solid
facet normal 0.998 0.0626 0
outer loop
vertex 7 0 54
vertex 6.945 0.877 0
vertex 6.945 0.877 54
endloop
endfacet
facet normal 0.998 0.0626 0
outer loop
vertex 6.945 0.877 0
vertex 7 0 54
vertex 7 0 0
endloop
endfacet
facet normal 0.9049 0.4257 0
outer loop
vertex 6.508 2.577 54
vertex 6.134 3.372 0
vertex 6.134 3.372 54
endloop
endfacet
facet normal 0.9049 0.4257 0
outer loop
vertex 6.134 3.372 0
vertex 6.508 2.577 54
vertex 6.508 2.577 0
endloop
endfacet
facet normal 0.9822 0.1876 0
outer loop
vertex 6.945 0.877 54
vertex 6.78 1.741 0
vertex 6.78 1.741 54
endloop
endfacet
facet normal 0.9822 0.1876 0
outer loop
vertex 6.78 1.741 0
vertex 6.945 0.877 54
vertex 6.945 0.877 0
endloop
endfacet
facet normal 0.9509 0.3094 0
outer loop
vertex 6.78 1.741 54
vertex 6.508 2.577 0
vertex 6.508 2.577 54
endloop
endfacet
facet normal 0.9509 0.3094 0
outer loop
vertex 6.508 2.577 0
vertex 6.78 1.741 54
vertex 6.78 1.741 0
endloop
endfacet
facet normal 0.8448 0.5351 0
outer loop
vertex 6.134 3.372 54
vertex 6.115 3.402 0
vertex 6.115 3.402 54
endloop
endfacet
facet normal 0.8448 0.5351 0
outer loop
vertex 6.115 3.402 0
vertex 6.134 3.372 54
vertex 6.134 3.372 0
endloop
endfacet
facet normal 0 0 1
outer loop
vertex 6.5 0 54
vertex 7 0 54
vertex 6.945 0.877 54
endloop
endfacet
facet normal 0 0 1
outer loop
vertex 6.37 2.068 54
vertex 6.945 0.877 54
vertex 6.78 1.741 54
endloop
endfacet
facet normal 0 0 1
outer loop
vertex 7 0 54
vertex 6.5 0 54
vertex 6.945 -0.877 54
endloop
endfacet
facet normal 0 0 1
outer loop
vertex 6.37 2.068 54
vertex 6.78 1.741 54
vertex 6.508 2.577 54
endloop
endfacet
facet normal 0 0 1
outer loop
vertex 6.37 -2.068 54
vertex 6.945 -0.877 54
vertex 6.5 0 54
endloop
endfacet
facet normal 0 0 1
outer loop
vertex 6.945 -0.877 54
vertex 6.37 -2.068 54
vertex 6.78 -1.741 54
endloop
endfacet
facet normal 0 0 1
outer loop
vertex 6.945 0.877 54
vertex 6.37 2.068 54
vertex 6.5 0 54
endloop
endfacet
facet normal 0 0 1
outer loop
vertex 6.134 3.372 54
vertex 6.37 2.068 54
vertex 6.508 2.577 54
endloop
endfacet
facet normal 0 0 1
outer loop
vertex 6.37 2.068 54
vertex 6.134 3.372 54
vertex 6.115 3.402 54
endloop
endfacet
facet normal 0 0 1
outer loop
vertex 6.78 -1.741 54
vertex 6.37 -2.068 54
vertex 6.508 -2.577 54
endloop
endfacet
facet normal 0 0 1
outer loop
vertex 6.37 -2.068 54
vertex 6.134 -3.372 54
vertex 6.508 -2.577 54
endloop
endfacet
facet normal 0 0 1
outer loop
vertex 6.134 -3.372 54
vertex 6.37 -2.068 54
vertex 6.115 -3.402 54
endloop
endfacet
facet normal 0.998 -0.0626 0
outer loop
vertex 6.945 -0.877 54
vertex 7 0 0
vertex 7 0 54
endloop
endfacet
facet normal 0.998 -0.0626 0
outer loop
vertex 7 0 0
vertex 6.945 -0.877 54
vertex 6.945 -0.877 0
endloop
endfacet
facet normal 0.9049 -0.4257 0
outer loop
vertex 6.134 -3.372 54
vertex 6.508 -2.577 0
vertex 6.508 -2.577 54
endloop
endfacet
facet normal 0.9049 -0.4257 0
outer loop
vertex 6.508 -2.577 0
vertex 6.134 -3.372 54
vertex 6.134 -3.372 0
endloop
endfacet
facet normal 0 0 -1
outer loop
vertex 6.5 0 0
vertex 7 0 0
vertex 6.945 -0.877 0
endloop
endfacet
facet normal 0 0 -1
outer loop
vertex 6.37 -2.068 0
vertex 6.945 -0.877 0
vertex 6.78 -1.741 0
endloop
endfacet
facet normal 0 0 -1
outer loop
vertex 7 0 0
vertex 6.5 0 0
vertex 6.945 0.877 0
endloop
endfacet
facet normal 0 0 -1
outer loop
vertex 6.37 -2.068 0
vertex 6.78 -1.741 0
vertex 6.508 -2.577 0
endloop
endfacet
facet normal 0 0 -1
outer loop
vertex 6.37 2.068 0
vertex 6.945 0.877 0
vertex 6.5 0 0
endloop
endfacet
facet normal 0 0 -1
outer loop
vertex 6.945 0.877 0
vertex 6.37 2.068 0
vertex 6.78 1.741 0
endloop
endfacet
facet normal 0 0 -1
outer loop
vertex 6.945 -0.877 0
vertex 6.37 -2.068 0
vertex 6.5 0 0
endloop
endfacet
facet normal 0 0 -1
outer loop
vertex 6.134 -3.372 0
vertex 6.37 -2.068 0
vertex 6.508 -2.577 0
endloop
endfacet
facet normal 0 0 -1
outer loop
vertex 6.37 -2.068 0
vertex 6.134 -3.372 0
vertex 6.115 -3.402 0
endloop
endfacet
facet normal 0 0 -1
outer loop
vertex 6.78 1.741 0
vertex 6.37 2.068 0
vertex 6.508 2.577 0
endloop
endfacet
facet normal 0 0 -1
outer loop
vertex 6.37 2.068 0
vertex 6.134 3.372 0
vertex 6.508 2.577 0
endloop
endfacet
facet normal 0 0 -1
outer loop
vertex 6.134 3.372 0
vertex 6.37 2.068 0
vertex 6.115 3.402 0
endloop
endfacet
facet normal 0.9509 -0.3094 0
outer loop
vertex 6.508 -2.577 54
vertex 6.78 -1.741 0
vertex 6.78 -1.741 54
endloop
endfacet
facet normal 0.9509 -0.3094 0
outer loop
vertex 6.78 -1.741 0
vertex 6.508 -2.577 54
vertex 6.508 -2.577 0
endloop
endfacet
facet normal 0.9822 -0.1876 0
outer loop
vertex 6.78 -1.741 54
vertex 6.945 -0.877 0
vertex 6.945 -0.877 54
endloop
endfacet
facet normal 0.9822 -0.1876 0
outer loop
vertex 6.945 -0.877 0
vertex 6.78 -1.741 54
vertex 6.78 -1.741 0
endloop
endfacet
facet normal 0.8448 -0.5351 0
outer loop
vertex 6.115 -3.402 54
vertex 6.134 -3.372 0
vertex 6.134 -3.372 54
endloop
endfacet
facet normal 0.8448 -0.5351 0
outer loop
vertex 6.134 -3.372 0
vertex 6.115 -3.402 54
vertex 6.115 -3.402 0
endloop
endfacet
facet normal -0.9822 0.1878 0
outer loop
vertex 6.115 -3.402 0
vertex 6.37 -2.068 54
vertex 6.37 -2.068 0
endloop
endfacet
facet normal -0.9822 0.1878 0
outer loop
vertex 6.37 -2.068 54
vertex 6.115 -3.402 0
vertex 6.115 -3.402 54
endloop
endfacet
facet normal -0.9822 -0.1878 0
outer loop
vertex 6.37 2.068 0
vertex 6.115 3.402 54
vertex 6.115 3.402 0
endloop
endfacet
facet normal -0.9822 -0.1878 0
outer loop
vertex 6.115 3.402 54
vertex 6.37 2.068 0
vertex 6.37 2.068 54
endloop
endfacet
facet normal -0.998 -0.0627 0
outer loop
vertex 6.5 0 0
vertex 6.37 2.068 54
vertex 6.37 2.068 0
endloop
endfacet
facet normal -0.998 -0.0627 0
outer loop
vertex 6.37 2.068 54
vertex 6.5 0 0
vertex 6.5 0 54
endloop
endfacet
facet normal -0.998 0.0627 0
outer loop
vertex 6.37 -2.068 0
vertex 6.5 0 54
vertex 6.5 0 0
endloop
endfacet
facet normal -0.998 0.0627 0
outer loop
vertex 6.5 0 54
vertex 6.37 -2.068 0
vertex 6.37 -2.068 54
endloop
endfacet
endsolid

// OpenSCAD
$fn = 50;


difference() {
	union() {
		cylinder(h = 54, r = 7.0000000000);
		translate(v = [-13.0000000000, 0, 0]) {
			cylinder(h = 54, r = 7.0000000000);
		}
	}
	union() {
		cylinder(h = 54, r = 3.2500000000);
		cylinder(h = 54, r = 1.8000000000);
		cylinder(h = 54, r = 1.8000000000);
		cylinder(h = 54, r = 1.8000000000);
		translate(v = [-17.5000000000, 0, 0]) {
			hull() {
				translate(v = [-3.7500000000, 0.0000000000, 0]) {
					cylinder(h = 54, r = 10.5000000000);
				}
				translate(v = [3.7500000000, 0.0000000000, 0]) {
					cylinder(h = 54, r = 10.5000000000);
				}
				translate(v = [-3.7500000000, -0.0000000000, 0]) {
					cylinder(h = 54, r = 10.5000000000);
				}
				translate(v = [3.7500000000, -0.0000000000, 0]) {
					cylinder(h = 54, r = 10.5000000000);
				}
			}
		}
		translate(v = [-10.0000000000, 0, 0.0000000000]) {
			cylinder(h = 54, r = 16.5000000000);
		}
	}
}
